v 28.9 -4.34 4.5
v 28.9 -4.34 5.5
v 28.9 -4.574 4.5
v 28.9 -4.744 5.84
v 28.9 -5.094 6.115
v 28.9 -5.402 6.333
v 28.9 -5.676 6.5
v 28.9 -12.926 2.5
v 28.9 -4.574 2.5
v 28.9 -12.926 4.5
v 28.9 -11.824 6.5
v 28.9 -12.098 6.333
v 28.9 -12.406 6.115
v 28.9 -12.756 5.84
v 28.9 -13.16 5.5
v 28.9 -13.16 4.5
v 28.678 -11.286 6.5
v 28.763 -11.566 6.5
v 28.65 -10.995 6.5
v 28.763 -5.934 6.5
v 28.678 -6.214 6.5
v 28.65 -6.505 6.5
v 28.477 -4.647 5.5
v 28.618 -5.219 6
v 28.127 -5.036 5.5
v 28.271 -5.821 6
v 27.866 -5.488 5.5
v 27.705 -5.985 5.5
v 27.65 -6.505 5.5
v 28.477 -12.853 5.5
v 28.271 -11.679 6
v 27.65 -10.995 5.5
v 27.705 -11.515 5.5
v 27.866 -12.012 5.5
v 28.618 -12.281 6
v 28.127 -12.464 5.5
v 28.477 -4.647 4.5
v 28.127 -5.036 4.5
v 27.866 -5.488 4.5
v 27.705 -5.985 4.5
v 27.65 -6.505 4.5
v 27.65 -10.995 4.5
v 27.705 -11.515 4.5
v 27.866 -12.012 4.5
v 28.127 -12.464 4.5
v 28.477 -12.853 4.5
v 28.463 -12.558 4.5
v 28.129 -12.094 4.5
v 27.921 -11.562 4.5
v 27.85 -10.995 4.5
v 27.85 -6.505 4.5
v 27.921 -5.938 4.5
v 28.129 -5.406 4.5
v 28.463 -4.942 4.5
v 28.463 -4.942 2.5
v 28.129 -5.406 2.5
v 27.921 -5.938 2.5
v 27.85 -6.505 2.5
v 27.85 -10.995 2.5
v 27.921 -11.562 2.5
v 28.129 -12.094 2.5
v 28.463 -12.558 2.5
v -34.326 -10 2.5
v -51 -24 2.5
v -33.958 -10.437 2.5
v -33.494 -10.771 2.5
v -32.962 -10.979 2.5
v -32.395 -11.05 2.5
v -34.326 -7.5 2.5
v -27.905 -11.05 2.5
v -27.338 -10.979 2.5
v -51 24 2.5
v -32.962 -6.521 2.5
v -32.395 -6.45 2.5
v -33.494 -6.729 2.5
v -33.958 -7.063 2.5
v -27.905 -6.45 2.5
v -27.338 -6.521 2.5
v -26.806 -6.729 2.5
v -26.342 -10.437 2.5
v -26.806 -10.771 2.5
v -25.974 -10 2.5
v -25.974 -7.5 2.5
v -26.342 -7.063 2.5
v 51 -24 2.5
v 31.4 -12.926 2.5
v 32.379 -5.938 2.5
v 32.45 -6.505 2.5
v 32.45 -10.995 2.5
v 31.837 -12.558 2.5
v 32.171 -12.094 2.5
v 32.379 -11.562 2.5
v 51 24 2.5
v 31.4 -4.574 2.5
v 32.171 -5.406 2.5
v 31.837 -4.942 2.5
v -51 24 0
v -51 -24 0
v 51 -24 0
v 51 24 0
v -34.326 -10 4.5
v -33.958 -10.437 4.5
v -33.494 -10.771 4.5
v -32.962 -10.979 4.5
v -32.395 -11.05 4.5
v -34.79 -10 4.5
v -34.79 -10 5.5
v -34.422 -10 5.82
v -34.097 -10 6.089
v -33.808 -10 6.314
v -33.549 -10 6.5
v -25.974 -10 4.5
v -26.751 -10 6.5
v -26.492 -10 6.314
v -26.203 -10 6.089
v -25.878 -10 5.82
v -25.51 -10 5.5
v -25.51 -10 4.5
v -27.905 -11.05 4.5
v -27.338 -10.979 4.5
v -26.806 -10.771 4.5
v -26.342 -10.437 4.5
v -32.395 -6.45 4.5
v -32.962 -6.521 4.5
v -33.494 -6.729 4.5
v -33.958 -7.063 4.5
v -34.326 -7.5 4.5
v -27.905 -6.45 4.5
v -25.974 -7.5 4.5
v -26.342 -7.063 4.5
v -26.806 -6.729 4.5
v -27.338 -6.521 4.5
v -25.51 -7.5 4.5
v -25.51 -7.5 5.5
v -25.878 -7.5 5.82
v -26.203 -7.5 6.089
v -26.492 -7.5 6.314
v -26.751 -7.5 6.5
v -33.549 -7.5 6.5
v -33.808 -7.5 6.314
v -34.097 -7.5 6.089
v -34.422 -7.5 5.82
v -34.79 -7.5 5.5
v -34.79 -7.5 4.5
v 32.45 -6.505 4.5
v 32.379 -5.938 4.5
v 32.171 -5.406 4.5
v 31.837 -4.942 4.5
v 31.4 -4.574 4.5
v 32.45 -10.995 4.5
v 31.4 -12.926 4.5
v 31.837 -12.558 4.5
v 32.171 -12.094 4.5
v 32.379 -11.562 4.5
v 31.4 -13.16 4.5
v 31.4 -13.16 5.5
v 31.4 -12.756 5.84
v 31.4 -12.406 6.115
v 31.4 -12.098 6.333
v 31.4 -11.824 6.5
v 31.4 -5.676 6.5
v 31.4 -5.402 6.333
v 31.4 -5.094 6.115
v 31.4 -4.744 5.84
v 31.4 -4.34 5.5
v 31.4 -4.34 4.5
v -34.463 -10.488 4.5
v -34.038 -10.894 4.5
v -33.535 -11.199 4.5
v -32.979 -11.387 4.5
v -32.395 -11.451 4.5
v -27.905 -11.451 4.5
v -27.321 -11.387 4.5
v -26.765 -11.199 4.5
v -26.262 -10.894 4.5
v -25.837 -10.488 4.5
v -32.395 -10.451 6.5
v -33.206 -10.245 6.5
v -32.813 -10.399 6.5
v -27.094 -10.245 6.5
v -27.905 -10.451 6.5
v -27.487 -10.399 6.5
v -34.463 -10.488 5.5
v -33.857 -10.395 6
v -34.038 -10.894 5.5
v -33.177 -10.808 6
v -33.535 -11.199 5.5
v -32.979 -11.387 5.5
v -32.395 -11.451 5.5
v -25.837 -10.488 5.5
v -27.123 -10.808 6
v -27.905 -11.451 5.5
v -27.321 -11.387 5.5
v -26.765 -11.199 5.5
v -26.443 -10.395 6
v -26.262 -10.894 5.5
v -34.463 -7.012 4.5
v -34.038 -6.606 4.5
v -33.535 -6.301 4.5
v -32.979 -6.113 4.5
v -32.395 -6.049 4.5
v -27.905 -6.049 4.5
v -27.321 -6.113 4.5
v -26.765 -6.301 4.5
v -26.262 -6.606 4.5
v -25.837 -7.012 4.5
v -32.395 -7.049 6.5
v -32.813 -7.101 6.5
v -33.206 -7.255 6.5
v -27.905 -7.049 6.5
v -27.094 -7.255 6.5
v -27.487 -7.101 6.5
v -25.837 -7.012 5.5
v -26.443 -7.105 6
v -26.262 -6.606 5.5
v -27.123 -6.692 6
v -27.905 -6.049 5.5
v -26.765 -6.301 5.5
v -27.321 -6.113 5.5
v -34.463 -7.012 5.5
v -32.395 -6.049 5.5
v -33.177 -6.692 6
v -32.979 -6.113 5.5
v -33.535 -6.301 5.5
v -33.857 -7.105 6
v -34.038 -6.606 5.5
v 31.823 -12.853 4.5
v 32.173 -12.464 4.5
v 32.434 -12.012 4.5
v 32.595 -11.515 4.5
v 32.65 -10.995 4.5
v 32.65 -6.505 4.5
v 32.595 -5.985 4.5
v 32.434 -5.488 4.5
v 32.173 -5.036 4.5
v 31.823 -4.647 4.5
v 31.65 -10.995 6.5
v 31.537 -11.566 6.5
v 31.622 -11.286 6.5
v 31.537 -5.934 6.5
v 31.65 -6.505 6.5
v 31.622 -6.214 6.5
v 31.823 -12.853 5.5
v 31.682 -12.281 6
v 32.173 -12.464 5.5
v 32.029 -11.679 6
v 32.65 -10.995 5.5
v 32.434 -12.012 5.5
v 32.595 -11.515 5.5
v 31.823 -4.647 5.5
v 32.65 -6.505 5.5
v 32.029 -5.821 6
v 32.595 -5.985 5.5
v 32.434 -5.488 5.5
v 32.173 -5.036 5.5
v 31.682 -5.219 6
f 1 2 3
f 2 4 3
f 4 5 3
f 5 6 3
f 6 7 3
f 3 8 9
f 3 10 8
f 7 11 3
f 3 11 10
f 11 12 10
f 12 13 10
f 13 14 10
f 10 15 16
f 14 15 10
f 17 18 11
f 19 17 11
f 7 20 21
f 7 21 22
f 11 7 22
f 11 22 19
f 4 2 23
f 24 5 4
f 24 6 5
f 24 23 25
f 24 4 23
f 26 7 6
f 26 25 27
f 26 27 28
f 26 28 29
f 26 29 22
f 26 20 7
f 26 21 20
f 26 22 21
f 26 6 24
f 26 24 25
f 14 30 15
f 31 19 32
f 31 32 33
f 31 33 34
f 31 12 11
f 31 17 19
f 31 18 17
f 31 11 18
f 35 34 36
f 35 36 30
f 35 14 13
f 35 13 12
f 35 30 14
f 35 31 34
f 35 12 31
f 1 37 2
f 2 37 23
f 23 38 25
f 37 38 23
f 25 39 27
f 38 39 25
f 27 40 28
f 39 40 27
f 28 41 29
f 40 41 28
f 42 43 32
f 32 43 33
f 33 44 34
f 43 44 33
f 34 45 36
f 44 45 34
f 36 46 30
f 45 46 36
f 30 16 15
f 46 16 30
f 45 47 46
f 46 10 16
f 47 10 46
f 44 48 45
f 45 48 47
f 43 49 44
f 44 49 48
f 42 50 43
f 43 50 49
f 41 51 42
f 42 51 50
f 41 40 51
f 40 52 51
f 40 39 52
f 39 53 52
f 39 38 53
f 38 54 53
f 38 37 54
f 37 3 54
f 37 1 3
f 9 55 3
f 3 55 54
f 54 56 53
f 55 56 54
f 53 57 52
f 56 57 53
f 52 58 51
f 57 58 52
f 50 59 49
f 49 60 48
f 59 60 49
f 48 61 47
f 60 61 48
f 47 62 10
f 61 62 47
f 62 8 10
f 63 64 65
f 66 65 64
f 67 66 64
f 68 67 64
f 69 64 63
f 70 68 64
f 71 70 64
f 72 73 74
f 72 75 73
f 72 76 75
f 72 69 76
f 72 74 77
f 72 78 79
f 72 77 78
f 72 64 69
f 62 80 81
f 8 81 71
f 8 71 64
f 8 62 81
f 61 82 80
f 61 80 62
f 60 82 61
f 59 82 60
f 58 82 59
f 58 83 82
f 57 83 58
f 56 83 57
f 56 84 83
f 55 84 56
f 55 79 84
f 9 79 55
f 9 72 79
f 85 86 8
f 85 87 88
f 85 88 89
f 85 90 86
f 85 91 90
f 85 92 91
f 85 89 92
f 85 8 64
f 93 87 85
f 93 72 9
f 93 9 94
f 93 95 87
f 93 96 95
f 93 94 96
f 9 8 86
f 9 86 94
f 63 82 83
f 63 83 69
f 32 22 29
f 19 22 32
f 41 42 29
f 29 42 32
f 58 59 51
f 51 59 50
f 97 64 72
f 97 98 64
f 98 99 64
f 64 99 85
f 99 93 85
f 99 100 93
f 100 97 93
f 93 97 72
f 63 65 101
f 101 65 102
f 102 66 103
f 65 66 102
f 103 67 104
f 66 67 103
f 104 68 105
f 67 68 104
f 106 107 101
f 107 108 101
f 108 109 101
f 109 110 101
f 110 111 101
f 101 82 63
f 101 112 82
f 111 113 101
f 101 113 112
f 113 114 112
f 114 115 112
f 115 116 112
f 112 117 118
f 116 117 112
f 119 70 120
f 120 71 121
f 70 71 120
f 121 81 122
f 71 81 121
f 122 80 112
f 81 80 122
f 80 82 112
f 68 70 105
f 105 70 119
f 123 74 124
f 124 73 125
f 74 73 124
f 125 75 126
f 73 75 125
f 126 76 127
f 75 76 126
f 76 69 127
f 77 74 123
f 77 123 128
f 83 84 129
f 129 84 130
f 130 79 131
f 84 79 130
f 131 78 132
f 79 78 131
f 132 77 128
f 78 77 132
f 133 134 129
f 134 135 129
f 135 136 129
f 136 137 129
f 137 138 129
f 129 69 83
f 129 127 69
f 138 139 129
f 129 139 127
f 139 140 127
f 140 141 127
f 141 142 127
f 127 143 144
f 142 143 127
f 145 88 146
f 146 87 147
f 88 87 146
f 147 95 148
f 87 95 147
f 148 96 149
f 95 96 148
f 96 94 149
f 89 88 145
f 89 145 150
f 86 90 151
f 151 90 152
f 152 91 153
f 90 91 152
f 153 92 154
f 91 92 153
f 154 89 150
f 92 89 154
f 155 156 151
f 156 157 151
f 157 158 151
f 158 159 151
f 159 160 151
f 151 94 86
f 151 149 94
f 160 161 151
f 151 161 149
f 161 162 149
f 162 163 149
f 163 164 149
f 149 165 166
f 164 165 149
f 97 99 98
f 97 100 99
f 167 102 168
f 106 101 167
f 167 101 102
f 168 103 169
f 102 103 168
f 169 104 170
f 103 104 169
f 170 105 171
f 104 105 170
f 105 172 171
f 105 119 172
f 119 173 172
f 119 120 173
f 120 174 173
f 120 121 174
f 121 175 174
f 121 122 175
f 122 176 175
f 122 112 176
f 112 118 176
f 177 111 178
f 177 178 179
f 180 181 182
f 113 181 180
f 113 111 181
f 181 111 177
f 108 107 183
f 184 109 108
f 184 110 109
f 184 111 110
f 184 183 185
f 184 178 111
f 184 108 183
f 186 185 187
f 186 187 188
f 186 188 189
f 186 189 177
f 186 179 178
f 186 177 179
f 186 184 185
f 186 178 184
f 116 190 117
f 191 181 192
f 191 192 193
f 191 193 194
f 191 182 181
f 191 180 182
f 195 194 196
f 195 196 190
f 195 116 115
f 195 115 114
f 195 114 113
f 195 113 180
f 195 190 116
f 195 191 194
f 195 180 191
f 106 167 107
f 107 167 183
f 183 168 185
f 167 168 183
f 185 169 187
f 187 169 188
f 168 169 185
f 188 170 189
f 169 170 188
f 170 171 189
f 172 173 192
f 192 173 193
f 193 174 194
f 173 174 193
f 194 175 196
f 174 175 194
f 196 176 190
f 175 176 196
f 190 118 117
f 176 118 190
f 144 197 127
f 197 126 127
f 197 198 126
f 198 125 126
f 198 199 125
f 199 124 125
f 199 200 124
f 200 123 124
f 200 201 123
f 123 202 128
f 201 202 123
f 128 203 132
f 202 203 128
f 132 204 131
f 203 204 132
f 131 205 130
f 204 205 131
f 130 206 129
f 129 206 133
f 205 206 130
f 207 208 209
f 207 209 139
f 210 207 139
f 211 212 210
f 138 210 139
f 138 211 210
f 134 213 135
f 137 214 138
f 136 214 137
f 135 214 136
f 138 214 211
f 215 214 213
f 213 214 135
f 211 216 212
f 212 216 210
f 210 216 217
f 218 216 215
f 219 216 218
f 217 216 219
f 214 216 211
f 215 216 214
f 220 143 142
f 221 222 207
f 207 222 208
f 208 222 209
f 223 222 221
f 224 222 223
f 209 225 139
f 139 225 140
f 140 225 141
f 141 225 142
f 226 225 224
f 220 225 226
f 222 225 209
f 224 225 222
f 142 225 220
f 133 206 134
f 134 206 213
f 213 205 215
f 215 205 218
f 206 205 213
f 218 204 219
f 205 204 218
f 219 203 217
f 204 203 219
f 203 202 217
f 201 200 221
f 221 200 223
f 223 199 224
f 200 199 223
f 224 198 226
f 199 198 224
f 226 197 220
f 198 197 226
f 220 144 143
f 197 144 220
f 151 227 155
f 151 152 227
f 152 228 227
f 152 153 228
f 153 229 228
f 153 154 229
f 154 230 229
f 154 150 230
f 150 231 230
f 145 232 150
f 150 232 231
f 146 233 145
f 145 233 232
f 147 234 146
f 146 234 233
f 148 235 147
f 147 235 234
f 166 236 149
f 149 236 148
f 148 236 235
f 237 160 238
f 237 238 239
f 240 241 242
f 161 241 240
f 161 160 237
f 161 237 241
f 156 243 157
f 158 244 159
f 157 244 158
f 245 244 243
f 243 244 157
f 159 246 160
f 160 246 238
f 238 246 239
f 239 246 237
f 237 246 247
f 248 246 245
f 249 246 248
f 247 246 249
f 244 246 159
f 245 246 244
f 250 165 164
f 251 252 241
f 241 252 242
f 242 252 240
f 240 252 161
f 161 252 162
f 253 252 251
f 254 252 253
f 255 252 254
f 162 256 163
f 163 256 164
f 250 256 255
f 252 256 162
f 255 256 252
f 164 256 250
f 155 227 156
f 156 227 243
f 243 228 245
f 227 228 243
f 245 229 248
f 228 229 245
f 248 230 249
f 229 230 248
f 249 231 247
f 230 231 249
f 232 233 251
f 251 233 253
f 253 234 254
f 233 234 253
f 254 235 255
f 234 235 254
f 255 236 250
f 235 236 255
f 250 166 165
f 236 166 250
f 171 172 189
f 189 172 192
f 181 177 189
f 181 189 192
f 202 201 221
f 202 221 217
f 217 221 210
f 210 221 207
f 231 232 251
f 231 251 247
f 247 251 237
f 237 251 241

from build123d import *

# Parameters (mm, degrees)
SKETCH_W      = 102
SKETCH_H      = 48
PAD_DEPTH     = 2.5
PAD001_DEPTH  = 2
PAD002_DEPTH  = 2
SKETCH004_W   = 10
SKETCH004_H   = 2.5
SKETCH004_W_2 = 2.5
SKETCH004_H_2 = 10
POCKET_DEPTH  = 4
CHAMFER_SIZE  = 1


with BuildPart() as part:
    # Sketch → Pad (new body)
    with BuildSketch(Plane.XY):
        Rectangle(SKETCH_W, SKETCH_H)
    extrude(amount=PAD_DEPTH)

    # Sketch001 (on Face6 of Pad) → Pad001 (join)
    with BuildSketch(Plane.XY.offset(2.5)):
        with BuildLine():
            ThreePointArc((-32.395, -6.45), (-34.695, -8.75), (-32.395, -11.05))
            Line((-32.395, -11.05), (-27.905, -11.05))
            ThreePointArc((-27.905, -11.05), (-25.605, -8.75), (-27.905, -6.45))
            Line((-32.395, -6.45), (-27.905, -6.45))
        make_face()
        with BuildLine():
            ThreePointArc((32.45, -6.505), (30.15, -4.205), (27.85, -6.505))
            Line((27.85, -6.505), (27.85, -10.995))
            ThreePointArc((27.85, -10.995), (30.15, -13.295), (32.45, -10.995))
            Line((32.45, -6.505), (32.45, -10.995))
        make_face()
    extrude(amount=PAD001_DEPTH)

    # Sketch002 (on Face15 of Pad001) → Pad002 (join)
    with BuildSketch(Plane.XY.offset(4.5)):
        with BuildLine():
            ThreePointArc((-32.395, -6.048796), (-35.096204, -8.75), (-32.395, -11.451204))
            Line((-32.395, -11.451204), (-27.905, -11.451204))
            ThreePointArc((-27.905, -11.451204), (-25.203796, -8.75), (-27.905, -6.048796))
            Line((-32.395, -6.048796), (-27.905, -6.048796))
        make_face()
        with BuildLine():
            ThreePointArc((32.65, -6.505), (30.15, -4.005), (27.65, -6.505))
            Line((27.65, -6.505), (27.65, -10.995))
            ThreePointArc((27.65, -10.995), (30.15, -13.495), (32.65, -10.995))
            Line((32.65, -6.505), (32.65, -10.995))
        make_face()
    extrude(amount=PAD002_DEPTH)

    # Sketch004 (on Face25 of Pad002) → Pocket (cut)
    with BuildSketch(Plane.XY.offset(6.5)):
        with Locations((-30.15, -8.75)):
            Rectangle(SKETCH004_W, SKETCH004_H)
        with Locations((30.15, -8.75)):
            Rectangle(SKETCH004_W_2, SKETCH004_H_2)
    extrude(amount=-POCKET_DEPTH, mode=Mode.SUBTRACT)

    # Chamfer
    chamfer_edges = [part.edges().sort_by_distance(p)[0] for p in [
        (-33.795, -6.439912, 6.5),
        (-30.15, -6.048796, 6.5),
        (-26.505, -6.439912, 6.5),
        (-26.505, -11.060088, 6.5),
        (-30.15, -11.451204, 6.5),
        (-33.795, -11.060088, 6.5),
        (27.984936, -5.255, 6.5),
        (27.65, -8.75, 6.5),
        (27.984936, -12.245, 6.5),
        (32.315064, -12.245, 6.5),
        (32.65, -8.75, 6.5),
        (32.315064, -5.255, 6.5),
    ]]
    chamfer(chamfer_edges, length=CHAMFER_SIZE)


solid = part.part
